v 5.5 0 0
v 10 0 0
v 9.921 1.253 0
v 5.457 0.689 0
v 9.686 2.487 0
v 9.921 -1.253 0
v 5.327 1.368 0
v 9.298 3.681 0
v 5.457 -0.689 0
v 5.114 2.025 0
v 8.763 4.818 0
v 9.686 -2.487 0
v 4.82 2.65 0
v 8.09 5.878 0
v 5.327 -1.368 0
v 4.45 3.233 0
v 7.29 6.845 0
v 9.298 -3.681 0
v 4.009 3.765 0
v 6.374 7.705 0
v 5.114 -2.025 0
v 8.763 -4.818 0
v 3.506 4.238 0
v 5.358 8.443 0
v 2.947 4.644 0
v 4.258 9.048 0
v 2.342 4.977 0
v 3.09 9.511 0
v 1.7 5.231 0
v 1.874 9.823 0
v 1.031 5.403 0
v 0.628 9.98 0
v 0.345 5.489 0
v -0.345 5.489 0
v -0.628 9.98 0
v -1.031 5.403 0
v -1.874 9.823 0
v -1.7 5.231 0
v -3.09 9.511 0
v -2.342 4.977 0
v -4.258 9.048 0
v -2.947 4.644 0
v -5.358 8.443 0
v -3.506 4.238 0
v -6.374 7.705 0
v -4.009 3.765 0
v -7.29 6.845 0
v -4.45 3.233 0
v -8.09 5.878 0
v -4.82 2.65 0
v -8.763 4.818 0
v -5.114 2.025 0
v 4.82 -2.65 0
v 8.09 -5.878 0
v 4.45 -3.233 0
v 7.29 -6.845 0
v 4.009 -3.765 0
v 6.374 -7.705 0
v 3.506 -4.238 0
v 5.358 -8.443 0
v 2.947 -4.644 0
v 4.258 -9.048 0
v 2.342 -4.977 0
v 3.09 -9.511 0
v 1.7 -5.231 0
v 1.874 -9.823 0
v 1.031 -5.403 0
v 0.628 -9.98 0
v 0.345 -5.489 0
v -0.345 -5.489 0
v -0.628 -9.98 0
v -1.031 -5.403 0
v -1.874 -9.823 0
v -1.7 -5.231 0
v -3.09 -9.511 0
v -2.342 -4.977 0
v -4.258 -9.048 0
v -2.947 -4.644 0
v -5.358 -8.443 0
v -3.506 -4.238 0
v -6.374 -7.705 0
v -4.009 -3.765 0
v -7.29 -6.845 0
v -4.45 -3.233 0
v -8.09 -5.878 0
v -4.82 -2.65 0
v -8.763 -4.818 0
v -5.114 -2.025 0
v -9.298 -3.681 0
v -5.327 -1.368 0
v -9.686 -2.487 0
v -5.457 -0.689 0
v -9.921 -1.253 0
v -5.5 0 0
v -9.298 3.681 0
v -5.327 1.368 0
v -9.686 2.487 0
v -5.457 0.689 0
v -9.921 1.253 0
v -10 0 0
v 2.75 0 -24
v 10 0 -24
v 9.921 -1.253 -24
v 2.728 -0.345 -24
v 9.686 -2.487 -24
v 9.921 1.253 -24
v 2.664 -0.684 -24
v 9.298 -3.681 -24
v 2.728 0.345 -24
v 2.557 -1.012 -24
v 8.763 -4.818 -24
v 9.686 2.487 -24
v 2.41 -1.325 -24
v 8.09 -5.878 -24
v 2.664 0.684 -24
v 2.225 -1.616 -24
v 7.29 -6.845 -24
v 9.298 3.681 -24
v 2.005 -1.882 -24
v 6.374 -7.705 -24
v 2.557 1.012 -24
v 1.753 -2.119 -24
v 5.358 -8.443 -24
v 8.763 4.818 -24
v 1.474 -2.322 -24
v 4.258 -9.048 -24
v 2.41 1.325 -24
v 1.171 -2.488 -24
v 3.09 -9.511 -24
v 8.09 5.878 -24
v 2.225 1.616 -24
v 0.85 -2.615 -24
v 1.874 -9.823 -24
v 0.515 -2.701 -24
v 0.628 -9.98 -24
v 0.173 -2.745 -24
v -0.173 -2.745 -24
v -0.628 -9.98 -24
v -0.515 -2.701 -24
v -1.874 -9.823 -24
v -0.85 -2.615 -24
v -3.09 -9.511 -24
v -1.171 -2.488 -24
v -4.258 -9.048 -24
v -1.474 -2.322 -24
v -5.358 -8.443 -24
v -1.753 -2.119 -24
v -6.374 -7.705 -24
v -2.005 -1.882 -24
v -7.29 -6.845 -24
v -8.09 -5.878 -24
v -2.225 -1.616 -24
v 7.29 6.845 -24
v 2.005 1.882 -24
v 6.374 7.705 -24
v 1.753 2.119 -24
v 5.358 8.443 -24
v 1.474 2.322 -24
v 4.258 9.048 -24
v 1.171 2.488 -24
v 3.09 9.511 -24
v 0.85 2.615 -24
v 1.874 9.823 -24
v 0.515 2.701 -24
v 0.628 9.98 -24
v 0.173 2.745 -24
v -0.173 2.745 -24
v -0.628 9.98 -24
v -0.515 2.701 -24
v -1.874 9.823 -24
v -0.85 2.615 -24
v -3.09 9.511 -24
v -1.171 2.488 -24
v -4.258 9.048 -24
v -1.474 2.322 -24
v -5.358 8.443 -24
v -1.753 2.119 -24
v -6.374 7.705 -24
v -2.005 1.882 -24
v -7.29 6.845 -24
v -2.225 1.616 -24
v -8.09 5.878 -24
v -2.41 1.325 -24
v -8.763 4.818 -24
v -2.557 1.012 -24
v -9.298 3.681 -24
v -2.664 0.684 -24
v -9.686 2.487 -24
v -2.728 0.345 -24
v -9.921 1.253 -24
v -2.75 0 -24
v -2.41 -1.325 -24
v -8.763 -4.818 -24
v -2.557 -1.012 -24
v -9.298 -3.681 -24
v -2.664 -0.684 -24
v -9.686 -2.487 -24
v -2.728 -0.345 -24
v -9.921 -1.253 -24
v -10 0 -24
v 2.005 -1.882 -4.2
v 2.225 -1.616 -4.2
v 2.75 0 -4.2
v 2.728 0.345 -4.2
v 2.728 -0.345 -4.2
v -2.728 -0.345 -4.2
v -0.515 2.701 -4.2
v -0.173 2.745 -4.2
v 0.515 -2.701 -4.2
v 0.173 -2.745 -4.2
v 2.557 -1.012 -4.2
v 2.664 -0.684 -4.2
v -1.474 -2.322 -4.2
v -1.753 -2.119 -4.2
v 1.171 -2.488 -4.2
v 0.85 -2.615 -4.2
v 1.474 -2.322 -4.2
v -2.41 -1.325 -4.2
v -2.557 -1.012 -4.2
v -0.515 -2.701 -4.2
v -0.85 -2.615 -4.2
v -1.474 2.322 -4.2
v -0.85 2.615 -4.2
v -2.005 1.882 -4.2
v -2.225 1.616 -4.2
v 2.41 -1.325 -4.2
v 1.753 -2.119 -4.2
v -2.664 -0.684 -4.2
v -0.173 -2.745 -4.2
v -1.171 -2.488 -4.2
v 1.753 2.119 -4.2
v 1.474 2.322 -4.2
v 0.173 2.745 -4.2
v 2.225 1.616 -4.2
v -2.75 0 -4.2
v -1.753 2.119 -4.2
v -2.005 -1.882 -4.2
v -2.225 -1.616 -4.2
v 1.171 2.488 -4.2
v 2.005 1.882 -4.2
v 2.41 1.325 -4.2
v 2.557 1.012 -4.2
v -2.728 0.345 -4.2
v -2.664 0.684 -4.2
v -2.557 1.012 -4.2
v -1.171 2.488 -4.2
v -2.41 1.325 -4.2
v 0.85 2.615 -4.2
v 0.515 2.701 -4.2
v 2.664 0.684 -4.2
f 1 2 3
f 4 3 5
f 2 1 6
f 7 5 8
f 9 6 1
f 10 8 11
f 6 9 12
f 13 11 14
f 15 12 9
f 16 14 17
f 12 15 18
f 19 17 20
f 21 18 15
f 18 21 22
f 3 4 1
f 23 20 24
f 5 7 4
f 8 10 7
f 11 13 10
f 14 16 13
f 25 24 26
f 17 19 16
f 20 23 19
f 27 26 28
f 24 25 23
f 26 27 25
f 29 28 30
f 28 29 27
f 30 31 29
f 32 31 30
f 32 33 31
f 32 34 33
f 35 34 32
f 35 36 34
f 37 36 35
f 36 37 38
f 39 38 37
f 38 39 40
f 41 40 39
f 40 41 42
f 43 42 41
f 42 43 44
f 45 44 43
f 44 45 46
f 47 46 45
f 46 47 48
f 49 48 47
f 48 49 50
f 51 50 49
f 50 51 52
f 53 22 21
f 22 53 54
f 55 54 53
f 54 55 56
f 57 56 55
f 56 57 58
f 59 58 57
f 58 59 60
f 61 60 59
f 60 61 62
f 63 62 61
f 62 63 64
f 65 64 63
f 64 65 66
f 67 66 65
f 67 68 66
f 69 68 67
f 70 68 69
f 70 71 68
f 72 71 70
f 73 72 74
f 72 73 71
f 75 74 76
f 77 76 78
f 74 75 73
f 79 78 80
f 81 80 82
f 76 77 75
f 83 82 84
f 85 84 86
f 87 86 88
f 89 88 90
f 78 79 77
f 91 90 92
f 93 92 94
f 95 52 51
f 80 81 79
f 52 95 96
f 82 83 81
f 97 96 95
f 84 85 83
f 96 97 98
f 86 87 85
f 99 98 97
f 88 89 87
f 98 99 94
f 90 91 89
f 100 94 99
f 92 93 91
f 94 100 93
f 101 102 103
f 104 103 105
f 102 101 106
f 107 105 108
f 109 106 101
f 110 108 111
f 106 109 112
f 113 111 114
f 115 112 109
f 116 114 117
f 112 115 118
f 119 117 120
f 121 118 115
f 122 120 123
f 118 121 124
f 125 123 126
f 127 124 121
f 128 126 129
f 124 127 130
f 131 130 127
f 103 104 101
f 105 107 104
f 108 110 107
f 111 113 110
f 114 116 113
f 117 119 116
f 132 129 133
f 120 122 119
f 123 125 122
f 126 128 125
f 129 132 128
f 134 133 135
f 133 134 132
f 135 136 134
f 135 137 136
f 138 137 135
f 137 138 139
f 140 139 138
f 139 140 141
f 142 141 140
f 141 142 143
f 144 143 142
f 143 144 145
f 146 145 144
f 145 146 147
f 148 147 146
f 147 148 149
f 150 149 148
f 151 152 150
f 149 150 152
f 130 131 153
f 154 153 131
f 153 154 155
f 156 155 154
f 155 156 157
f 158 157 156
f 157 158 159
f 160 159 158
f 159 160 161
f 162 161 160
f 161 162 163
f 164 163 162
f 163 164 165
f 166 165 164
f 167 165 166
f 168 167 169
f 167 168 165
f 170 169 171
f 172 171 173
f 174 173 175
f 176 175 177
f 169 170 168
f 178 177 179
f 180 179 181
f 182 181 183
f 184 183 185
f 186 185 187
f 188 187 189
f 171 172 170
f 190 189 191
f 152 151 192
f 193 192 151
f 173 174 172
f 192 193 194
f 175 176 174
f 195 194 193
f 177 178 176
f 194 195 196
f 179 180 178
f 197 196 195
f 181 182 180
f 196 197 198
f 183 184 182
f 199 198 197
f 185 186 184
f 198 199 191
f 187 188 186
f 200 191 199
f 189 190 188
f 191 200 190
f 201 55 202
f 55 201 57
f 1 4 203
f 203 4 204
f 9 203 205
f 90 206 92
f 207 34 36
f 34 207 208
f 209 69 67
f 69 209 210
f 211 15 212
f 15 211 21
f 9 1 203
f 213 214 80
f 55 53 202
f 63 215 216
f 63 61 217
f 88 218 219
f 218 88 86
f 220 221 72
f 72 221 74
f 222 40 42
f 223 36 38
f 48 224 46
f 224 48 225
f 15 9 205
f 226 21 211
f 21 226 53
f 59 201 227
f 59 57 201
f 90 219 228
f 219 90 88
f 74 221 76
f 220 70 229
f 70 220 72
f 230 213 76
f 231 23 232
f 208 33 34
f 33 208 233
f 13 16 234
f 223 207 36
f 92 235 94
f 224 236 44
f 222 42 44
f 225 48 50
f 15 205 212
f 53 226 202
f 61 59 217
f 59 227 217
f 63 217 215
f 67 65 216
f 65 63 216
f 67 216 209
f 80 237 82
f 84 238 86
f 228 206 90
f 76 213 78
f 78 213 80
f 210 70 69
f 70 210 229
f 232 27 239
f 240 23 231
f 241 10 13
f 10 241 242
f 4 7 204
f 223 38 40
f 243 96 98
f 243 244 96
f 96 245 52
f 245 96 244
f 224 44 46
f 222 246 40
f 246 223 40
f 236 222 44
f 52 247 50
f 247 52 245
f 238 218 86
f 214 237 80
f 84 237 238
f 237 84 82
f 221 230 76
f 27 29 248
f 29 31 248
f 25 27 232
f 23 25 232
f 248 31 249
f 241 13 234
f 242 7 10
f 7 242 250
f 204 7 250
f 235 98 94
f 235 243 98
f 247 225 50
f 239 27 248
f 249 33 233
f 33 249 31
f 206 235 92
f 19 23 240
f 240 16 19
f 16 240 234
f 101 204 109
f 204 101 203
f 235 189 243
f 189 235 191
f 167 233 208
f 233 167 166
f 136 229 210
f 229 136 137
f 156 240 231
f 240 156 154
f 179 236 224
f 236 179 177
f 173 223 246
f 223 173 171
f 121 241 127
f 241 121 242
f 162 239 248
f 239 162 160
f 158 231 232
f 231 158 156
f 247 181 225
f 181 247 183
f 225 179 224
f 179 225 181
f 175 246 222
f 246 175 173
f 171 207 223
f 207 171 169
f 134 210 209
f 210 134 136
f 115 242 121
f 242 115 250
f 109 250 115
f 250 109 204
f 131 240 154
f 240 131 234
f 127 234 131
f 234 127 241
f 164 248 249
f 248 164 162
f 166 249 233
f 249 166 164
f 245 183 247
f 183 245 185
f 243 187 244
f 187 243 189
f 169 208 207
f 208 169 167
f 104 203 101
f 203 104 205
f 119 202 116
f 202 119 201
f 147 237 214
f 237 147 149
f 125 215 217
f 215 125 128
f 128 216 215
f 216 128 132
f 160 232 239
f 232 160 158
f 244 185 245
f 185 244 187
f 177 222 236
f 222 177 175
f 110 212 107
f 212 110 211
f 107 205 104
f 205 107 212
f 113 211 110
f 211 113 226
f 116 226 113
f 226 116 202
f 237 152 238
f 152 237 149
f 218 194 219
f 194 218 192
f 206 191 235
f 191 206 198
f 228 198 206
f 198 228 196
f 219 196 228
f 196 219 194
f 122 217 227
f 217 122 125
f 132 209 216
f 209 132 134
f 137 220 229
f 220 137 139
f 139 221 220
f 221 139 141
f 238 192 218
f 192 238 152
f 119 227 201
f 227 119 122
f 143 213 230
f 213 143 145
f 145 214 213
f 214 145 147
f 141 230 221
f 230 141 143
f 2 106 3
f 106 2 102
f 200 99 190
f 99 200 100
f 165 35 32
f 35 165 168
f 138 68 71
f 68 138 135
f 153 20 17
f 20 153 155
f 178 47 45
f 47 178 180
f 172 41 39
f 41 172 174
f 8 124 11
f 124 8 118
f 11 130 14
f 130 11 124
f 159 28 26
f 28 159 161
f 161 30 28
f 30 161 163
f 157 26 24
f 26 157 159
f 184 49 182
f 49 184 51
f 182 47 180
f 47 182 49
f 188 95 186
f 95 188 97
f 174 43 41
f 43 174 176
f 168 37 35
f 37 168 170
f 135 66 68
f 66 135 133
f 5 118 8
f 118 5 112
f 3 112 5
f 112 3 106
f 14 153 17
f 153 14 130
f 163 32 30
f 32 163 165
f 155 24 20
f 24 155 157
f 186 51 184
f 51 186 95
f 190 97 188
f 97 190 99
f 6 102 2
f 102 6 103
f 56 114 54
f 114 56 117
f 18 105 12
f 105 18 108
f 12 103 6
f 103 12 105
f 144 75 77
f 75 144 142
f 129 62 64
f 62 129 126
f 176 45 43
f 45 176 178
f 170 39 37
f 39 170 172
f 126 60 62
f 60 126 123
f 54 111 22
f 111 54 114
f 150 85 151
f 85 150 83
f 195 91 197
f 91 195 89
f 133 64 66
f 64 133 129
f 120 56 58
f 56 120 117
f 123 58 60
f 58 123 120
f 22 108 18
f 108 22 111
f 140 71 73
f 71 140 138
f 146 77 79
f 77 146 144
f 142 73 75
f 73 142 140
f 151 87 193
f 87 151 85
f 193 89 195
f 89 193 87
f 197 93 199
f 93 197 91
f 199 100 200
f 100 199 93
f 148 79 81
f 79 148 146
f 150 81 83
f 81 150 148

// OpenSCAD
$fn = 50;


difference() {
	union() {
		translate(v = [0, 0, -24.0000000000]) {
			cylinder(h = 24, r = 10.0000000000);
		}
		cylinder(h = 0, r = 16.0000000000);
	}
	union() {
		translate(v = [0, 0, 0]) {
			rotate(a = [0, 0, 0]) {
				difference() {
					union() {
						#translate(v = [0, 0, -24.0000000000]) {
							cylinder(h = 24, r = 2.2500000000);
						}
						#translate(v = [0, 0, -4.2000000000]) {
							cylinder(h = 4.2000000000, r = 10.0000000000, r1 = 2.7500000000, r2 = 5.5000000000);
						}
						#translate(v = [0, 0, -24.0000000000]) {
							cylinder(h = 24, r = 2.7500000000);
						}
						#translate(v = [0, 0, -24.0000000000]) {
							cylinder(h = 24, r = 2.2500000000);
						}
					}
					union();
				}
			}
		}
	}
}
